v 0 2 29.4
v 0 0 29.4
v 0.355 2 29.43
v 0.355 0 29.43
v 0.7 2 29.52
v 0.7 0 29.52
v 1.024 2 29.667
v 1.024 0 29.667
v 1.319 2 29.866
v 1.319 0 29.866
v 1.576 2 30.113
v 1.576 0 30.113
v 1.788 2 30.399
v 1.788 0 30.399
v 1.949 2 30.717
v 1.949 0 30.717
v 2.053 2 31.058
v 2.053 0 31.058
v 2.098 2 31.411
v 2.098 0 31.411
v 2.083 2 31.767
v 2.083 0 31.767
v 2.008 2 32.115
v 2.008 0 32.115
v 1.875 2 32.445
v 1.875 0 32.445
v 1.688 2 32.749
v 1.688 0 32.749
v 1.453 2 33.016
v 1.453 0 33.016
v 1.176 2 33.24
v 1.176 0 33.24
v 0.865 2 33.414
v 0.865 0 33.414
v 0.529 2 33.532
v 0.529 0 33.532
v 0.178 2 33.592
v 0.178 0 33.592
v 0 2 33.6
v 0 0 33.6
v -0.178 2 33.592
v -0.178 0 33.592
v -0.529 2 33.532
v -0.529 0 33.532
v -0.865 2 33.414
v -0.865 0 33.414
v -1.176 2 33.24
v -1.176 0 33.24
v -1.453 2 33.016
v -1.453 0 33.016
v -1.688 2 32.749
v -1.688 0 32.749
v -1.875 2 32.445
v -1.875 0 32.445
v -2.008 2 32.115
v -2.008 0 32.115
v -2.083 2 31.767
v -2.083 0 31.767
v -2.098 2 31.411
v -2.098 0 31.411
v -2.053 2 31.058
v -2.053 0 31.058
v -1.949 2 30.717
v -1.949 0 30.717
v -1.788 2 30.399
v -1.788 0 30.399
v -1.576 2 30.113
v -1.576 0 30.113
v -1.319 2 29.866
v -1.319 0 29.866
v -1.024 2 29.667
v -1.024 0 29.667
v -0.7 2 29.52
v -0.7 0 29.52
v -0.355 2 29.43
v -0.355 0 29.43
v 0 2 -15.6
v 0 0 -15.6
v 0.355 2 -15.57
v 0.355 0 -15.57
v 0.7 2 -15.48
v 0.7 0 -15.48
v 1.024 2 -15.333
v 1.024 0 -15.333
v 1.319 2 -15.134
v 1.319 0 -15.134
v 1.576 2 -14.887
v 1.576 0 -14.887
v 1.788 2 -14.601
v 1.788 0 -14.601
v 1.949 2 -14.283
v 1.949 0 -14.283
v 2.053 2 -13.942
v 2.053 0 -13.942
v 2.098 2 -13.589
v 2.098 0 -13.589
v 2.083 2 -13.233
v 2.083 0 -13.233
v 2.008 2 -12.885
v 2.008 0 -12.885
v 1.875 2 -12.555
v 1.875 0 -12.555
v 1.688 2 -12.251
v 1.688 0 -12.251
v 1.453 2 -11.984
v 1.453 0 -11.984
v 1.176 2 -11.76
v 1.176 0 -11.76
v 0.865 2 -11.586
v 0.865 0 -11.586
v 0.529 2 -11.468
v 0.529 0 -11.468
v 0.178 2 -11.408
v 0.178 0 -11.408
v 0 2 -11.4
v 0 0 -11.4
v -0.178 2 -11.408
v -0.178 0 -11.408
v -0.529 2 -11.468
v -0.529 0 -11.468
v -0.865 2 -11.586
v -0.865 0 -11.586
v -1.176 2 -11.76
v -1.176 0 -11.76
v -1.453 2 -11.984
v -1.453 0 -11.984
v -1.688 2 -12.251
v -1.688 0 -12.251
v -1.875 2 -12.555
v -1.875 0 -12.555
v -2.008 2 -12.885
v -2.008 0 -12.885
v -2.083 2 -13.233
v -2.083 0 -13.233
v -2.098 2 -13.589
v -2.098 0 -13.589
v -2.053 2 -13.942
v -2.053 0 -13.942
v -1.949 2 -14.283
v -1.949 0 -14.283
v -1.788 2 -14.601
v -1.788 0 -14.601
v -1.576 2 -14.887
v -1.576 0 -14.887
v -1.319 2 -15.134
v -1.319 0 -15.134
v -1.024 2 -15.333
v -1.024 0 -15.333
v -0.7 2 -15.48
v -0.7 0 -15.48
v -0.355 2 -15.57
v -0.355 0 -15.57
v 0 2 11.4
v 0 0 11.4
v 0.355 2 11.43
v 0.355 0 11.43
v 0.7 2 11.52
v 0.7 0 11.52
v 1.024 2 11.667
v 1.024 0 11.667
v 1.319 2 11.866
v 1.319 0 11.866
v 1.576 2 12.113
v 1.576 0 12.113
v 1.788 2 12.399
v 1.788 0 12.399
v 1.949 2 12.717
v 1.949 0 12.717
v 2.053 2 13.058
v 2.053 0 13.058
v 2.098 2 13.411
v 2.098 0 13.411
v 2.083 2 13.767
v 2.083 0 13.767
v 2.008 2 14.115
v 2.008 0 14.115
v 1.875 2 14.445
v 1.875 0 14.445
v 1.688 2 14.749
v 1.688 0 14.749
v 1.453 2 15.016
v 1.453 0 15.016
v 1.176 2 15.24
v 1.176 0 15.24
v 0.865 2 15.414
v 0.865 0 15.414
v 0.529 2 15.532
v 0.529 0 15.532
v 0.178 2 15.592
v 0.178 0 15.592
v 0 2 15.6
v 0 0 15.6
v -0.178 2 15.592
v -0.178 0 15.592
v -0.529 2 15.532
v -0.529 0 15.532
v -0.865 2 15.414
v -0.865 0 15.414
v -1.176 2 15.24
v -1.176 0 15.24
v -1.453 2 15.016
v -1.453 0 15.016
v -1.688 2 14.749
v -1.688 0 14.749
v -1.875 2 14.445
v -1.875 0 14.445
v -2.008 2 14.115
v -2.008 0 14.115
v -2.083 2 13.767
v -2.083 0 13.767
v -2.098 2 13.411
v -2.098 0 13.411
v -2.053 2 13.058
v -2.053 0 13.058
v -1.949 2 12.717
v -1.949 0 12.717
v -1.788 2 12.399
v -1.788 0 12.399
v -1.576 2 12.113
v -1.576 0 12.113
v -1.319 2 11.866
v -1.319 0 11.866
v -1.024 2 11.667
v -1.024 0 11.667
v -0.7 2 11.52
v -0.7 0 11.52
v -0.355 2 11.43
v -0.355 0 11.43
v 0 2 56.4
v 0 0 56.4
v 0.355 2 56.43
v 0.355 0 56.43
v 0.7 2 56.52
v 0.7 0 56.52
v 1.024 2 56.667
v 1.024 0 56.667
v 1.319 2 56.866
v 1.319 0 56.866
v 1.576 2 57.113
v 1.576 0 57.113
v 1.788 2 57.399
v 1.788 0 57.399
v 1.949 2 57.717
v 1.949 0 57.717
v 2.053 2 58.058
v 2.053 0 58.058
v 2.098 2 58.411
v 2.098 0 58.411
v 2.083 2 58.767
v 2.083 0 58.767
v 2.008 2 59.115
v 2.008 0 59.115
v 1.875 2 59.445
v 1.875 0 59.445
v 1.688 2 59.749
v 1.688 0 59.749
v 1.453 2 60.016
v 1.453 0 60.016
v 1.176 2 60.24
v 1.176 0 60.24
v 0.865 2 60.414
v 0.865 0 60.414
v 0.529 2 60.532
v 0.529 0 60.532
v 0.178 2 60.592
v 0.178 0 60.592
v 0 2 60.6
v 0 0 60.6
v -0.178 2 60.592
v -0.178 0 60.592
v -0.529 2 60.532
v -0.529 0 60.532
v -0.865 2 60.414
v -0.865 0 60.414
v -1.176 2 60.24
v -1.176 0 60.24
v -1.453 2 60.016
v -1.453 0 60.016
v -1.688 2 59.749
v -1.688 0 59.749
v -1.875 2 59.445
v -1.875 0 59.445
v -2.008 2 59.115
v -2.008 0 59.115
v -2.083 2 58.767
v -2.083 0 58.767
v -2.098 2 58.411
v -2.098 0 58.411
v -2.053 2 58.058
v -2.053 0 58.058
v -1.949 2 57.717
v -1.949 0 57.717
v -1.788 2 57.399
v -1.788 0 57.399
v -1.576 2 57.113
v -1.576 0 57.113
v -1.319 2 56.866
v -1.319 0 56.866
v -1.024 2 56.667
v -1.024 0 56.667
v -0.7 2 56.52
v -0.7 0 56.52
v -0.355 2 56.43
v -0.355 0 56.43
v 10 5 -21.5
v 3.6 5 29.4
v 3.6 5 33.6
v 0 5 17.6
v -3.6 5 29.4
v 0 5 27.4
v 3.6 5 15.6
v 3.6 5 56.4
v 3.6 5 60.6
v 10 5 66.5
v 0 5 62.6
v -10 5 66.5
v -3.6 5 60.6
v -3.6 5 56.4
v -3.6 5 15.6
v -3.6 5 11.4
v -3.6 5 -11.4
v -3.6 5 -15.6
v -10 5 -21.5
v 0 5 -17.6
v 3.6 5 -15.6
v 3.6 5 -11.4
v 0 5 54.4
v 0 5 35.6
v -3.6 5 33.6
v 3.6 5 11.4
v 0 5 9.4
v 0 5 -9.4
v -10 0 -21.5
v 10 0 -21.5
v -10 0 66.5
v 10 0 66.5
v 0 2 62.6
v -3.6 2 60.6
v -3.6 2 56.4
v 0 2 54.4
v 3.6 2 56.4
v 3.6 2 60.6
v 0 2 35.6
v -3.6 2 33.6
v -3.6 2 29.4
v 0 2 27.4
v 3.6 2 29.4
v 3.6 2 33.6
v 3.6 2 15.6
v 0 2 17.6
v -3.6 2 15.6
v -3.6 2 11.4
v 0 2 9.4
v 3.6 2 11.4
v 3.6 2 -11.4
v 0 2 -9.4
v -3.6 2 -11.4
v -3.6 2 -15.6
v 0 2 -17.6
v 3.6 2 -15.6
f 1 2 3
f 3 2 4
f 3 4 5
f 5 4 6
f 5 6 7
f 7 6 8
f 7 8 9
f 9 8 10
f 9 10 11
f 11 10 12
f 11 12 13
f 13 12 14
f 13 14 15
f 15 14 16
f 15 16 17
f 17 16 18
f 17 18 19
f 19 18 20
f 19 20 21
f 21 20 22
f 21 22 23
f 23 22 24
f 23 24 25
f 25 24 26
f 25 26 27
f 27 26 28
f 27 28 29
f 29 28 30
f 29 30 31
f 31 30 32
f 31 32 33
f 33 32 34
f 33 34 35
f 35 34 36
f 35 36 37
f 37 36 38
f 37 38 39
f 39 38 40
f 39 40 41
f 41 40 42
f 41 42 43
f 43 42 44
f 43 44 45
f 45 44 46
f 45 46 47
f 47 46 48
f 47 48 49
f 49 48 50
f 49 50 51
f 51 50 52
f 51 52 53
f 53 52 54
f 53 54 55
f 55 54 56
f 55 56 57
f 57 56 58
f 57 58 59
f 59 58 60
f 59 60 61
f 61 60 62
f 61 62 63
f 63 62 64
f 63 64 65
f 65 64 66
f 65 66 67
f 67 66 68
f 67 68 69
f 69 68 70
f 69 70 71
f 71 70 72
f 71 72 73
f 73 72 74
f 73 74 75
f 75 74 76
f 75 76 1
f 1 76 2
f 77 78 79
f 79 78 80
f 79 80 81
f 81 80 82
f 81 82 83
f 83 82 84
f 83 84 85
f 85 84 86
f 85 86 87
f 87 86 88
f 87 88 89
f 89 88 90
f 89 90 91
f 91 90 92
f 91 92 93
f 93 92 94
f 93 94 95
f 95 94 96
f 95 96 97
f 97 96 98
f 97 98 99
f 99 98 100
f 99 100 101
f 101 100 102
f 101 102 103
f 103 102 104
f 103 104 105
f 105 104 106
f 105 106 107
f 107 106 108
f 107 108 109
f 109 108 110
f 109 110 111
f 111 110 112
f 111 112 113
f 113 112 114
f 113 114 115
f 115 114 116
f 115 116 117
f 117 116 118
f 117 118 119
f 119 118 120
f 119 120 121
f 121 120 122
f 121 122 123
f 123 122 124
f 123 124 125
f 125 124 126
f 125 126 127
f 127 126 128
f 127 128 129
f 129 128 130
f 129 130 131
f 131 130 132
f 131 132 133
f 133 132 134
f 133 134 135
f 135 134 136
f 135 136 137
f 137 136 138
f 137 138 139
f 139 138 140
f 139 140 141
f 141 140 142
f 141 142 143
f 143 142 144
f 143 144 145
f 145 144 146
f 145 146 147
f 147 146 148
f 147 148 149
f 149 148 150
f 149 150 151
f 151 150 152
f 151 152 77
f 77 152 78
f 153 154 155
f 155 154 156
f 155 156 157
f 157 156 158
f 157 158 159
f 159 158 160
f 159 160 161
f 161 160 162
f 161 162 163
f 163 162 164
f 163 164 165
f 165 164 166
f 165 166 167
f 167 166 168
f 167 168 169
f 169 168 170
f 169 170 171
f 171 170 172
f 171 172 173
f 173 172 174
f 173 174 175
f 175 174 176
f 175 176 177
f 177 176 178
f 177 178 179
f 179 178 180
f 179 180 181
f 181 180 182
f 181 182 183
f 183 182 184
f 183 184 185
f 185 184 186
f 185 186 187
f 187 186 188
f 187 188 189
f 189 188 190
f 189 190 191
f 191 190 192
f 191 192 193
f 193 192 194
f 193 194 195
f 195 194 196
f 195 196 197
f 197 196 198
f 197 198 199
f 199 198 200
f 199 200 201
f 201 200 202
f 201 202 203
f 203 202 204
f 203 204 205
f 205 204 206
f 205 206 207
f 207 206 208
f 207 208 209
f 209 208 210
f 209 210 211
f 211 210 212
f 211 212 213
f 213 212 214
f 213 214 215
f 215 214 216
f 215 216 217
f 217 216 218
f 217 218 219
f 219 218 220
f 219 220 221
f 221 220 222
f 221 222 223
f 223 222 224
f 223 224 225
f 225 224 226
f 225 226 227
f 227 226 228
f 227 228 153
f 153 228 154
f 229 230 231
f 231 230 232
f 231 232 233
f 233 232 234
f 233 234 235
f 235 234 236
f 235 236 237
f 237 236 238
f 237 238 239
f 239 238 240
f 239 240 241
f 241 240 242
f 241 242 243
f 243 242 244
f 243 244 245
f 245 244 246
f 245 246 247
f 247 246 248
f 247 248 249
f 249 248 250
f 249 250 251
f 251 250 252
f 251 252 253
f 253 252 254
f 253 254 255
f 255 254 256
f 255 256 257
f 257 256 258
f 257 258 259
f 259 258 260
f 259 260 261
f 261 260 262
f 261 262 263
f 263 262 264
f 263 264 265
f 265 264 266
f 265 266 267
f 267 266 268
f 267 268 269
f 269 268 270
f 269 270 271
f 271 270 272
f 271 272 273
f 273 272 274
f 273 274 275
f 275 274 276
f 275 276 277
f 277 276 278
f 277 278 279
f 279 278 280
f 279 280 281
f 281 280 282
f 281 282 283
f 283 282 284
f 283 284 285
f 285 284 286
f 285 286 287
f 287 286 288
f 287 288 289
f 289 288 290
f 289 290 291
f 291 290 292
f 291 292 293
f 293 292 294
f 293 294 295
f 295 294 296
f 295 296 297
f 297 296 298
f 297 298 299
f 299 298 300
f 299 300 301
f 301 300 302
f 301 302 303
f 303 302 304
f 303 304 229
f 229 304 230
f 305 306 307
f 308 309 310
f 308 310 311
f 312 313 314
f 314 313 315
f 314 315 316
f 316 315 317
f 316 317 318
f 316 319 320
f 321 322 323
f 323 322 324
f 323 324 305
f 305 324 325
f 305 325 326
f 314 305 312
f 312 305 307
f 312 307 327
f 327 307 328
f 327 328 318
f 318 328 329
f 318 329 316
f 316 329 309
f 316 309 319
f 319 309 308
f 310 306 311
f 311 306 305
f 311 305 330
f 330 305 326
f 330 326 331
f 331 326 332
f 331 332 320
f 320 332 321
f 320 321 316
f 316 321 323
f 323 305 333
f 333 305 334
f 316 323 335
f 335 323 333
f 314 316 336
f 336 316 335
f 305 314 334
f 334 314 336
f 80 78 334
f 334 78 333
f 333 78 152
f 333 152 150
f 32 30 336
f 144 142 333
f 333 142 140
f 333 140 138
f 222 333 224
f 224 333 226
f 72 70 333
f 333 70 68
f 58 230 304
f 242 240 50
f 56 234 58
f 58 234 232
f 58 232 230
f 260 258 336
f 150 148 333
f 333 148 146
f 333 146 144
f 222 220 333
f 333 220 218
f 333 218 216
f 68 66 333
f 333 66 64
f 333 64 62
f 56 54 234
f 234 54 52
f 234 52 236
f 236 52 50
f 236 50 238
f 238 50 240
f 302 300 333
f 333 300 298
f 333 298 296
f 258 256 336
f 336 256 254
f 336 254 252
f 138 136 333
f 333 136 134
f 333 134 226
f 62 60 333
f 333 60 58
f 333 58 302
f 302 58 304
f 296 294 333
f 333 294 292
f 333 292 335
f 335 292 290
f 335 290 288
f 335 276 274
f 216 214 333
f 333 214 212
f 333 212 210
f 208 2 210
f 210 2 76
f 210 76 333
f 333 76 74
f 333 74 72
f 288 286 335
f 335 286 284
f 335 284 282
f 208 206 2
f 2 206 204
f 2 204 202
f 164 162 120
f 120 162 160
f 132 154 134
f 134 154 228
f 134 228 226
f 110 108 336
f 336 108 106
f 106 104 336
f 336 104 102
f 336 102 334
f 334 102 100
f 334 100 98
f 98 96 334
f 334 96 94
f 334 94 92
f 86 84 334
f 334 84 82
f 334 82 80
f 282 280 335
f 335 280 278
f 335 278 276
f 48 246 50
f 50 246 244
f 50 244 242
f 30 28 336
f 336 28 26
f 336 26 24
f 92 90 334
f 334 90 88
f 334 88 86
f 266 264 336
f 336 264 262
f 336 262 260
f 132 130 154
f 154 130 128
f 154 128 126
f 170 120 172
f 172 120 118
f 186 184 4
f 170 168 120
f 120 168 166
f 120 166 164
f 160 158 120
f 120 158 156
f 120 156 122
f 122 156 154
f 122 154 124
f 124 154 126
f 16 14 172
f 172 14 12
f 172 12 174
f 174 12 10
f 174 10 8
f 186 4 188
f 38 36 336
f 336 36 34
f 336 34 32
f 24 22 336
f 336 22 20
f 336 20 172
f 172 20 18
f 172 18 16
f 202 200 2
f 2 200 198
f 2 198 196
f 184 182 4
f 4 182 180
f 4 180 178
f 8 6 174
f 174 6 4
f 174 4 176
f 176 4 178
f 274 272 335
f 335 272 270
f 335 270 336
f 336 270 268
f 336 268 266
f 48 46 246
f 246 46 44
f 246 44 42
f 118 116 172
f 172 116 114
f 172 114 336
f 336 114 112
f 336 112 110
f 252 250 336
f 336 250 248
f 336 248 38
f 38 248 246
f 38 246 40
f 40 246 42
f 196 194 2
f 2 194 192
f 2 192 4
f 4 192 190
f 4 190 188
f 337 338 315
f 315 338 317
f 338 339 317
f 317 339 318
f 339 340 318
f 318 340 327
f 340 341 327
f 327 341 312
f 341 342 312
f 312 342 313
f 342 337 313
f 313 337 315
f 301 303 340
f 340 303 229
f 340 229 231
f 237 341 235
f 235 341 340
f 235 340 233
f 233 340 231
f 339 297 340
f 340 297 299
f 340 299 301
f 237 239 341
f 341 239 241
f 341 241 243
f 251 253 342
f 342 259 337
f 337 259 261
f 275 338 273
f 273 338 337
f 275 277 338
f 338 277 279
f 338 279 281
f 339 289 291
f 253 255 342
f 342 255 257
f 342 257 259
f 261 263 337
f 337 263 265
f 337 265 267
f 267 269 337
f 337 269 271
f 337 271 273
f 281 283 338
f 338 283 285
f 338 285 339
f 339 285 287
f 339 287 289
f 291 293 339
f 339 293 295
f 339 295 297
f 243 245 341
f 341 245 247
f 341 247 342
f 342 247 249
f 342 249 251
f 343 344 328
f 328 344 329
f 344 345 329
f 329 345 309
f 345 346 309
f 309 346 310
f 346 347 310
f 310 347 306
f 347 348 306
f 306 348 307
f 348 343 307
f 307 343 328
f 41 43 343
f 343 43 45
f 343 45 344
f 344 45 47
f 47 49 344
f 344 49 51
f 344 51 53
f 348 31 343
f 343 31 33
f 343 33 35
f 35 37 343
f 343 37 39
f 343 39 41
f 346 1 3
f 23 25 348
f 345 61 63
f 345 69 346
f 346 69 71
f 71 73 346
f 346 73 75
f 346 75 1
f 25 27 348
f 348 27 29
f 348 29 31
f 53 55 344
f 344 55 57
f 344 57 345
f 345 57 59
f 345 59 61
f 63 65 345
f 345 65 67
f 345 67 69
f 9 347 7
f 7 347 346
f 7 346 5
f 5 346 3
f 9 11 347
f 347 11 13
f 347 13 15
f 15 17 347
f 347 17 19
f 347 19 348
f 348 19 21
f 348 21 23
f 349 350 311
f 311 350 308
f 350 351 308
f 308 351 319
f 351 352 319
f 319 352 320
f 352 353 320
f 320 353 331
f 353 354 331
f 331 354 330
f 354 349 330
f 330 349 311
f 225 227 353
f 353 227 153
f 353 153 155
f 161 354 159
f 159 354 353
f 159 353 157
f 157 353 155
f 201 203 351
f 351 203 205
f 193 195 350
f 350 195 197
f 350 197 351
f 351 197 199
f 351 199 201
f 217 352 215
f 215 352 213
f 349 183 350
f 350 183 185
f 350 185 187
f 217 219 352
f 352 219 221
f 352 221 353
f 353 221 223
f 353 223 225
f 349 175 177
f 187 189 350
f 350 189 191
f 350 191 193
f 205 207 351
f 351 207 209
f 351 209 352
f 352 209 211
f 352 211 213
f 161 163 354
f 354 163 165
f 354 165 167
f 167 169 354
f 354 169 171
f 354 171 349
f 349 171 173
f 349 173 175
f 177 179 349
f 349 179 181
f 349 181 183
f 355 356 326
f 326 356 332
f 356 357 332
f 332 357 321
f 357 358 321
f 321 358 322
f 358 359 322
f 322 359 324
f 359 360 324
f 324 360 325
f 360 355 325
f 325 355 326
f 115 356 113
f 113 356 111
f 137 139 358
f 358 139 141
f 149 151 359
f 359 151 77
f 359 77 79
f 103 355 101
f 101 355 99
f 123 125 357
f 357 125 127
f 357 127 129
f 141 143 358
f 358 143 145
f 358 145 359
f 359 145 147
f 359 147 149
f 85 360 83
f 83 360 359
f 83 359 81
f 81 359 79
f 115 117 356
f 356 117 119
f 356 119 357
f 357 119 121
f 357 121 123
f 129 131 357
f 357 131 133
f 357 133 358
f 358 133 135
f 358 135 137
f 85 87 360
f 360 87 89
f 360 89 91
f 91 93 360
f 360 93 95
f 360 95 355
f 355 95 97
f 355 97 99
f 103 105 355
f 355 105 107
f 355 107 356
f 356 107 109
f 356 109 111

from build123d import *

# Parameters (mm, degrees)
SKETCH1_W           = 20
SKETCH1_H           = 44
SKETCH1_R           = 2.1
BOSS_EXTRUDE1_DEPTH = 5
SKETCH2_R           = 2.1
CUT_EXTRUDE1_DEPTH  = 3


with BuildPart() as part:
    # Sketch1 → Boss-Extrude1 (new body)
    with BuildSketch(Plane(origin=(0, 0, 0), x_dir=(1, 0, 0), z_dir=(0, 1, 0))):
        with Locations((0, -0.5)):
            Rectangle(SKETCH1_W, SKETCH1_H)
        with Locations((0, -13.5)):
            Circle(SKETCH1_R, mode=Mode.SUBTRACT)
        with Locations((0, 13.5)):
            Circle(SKETCH1_R, mode=Mode.SUBTRACT)
        with Locations((0, -44.5)):
            Rectangle(SKETCH1_W, SKETCH1_H)
        with Locations((0, -58.5)):
            Circle(SKETCH1_R, mode=Mode.SUBTRACT)
        with Locations((0, -31.5)):
            Circle(SKETCH1_R, mode=Mode.SUBTRACT)
    extrude(amount=BOSS_EXTRUDE1_DEPTH)

    # Sketch2 → Cut-Extrude1 (cut)
    with BuildSketch(Plane(origin=(0, 5, 0), x_dir=(1, 0, 0), z_dir=(0, 1, 0))):
        Polygon((0, 17.6), (3.6, 15.6), (-3.6, 15.6), align=None)
        with BuildLine():
            ThreePointArc((2.1, 13.5), (1.48492424, 12.01507576), (0, 11.4))
            Line((0, 11.4), (3.6, 11.4))
            Line((3.6, 11.4), (3.6, 15.6))
            Line((3.6, 15.6), (0, 15.6))
            ThreePointArc((0, 15.6), (1.48492424, 14.98492424), (2.1, 13.5))
        make_face()
        with BuildLine():
            Line((-3.6, 15.6), (-3.6, 11.4))
            Line((-3.6, 11.4), (0, 11.4))
            ThreePointArc((0, 11.4), (-2.1, 13.5), (0, 15.6))
            Line((0, 15.6), (-3.6, 15.6))
        make_face()
        Polygon((0, 9.4), (-3.6, 11.4), (3.6, 11.4), align=None)
        Polygon((0, -9.4), (3.6, -11.4), (-3.6, -11.4), align=None)
        with BuildLine():
            ThreePointArc((2.1, -13.5), (1.484924244, -14.984924237), (1e-08, -15.6))
            Line((1e-08, -15.6), (3.6, -15.6))
            Line((3.6, -15.6), (3.6, -11.4))
            Line((3.6, -11.4), (0, -11.4))
            ThreePointArc((0, -11.4), (1.48492424, -12.01507576), (2.1, -13.5))
        make_face()
        with BuildLine():
            Line((-3.6, -11.4), (-3.6, -15.6))
            Line((-3.6, -15.6), (1e-08, -15.6))
            ThreePointArc((1e-08, -15.6), (-2.1, -13.500000005), (0, -11.4))
            Line((0, -11.4), (-3.6, -11.4))
        make_face()
        Polygon((0, -17.6), (-3.6, -15.6), (3.6, -15.6), align=None)
        Polygon((0, -35.6), (-3.6, -33.6), (-3.6, -29.4), (0, -27.4), (3.6, -29.4), (3.6, -33.6), align=None)
        with Locations((0, -31.5)):
            Circle(SKETCH2_R, mode=Mode.SUBTRACT)
        Polygon((0, -62.6), (-3.6, -60.6), (-3.6, -56.4), (0, -54.4), (3.6, -56.4), (3.6, -60.6), align=None)
        with Locations((0, -58.5)):
            Circle(SKETCH2_R, mode=Mode.SUBTRACT)
    extrude(amount=-CUT_EXTRUDE1_DEPTH, mode=Mode.SUBTRACT)


solid = part.part
